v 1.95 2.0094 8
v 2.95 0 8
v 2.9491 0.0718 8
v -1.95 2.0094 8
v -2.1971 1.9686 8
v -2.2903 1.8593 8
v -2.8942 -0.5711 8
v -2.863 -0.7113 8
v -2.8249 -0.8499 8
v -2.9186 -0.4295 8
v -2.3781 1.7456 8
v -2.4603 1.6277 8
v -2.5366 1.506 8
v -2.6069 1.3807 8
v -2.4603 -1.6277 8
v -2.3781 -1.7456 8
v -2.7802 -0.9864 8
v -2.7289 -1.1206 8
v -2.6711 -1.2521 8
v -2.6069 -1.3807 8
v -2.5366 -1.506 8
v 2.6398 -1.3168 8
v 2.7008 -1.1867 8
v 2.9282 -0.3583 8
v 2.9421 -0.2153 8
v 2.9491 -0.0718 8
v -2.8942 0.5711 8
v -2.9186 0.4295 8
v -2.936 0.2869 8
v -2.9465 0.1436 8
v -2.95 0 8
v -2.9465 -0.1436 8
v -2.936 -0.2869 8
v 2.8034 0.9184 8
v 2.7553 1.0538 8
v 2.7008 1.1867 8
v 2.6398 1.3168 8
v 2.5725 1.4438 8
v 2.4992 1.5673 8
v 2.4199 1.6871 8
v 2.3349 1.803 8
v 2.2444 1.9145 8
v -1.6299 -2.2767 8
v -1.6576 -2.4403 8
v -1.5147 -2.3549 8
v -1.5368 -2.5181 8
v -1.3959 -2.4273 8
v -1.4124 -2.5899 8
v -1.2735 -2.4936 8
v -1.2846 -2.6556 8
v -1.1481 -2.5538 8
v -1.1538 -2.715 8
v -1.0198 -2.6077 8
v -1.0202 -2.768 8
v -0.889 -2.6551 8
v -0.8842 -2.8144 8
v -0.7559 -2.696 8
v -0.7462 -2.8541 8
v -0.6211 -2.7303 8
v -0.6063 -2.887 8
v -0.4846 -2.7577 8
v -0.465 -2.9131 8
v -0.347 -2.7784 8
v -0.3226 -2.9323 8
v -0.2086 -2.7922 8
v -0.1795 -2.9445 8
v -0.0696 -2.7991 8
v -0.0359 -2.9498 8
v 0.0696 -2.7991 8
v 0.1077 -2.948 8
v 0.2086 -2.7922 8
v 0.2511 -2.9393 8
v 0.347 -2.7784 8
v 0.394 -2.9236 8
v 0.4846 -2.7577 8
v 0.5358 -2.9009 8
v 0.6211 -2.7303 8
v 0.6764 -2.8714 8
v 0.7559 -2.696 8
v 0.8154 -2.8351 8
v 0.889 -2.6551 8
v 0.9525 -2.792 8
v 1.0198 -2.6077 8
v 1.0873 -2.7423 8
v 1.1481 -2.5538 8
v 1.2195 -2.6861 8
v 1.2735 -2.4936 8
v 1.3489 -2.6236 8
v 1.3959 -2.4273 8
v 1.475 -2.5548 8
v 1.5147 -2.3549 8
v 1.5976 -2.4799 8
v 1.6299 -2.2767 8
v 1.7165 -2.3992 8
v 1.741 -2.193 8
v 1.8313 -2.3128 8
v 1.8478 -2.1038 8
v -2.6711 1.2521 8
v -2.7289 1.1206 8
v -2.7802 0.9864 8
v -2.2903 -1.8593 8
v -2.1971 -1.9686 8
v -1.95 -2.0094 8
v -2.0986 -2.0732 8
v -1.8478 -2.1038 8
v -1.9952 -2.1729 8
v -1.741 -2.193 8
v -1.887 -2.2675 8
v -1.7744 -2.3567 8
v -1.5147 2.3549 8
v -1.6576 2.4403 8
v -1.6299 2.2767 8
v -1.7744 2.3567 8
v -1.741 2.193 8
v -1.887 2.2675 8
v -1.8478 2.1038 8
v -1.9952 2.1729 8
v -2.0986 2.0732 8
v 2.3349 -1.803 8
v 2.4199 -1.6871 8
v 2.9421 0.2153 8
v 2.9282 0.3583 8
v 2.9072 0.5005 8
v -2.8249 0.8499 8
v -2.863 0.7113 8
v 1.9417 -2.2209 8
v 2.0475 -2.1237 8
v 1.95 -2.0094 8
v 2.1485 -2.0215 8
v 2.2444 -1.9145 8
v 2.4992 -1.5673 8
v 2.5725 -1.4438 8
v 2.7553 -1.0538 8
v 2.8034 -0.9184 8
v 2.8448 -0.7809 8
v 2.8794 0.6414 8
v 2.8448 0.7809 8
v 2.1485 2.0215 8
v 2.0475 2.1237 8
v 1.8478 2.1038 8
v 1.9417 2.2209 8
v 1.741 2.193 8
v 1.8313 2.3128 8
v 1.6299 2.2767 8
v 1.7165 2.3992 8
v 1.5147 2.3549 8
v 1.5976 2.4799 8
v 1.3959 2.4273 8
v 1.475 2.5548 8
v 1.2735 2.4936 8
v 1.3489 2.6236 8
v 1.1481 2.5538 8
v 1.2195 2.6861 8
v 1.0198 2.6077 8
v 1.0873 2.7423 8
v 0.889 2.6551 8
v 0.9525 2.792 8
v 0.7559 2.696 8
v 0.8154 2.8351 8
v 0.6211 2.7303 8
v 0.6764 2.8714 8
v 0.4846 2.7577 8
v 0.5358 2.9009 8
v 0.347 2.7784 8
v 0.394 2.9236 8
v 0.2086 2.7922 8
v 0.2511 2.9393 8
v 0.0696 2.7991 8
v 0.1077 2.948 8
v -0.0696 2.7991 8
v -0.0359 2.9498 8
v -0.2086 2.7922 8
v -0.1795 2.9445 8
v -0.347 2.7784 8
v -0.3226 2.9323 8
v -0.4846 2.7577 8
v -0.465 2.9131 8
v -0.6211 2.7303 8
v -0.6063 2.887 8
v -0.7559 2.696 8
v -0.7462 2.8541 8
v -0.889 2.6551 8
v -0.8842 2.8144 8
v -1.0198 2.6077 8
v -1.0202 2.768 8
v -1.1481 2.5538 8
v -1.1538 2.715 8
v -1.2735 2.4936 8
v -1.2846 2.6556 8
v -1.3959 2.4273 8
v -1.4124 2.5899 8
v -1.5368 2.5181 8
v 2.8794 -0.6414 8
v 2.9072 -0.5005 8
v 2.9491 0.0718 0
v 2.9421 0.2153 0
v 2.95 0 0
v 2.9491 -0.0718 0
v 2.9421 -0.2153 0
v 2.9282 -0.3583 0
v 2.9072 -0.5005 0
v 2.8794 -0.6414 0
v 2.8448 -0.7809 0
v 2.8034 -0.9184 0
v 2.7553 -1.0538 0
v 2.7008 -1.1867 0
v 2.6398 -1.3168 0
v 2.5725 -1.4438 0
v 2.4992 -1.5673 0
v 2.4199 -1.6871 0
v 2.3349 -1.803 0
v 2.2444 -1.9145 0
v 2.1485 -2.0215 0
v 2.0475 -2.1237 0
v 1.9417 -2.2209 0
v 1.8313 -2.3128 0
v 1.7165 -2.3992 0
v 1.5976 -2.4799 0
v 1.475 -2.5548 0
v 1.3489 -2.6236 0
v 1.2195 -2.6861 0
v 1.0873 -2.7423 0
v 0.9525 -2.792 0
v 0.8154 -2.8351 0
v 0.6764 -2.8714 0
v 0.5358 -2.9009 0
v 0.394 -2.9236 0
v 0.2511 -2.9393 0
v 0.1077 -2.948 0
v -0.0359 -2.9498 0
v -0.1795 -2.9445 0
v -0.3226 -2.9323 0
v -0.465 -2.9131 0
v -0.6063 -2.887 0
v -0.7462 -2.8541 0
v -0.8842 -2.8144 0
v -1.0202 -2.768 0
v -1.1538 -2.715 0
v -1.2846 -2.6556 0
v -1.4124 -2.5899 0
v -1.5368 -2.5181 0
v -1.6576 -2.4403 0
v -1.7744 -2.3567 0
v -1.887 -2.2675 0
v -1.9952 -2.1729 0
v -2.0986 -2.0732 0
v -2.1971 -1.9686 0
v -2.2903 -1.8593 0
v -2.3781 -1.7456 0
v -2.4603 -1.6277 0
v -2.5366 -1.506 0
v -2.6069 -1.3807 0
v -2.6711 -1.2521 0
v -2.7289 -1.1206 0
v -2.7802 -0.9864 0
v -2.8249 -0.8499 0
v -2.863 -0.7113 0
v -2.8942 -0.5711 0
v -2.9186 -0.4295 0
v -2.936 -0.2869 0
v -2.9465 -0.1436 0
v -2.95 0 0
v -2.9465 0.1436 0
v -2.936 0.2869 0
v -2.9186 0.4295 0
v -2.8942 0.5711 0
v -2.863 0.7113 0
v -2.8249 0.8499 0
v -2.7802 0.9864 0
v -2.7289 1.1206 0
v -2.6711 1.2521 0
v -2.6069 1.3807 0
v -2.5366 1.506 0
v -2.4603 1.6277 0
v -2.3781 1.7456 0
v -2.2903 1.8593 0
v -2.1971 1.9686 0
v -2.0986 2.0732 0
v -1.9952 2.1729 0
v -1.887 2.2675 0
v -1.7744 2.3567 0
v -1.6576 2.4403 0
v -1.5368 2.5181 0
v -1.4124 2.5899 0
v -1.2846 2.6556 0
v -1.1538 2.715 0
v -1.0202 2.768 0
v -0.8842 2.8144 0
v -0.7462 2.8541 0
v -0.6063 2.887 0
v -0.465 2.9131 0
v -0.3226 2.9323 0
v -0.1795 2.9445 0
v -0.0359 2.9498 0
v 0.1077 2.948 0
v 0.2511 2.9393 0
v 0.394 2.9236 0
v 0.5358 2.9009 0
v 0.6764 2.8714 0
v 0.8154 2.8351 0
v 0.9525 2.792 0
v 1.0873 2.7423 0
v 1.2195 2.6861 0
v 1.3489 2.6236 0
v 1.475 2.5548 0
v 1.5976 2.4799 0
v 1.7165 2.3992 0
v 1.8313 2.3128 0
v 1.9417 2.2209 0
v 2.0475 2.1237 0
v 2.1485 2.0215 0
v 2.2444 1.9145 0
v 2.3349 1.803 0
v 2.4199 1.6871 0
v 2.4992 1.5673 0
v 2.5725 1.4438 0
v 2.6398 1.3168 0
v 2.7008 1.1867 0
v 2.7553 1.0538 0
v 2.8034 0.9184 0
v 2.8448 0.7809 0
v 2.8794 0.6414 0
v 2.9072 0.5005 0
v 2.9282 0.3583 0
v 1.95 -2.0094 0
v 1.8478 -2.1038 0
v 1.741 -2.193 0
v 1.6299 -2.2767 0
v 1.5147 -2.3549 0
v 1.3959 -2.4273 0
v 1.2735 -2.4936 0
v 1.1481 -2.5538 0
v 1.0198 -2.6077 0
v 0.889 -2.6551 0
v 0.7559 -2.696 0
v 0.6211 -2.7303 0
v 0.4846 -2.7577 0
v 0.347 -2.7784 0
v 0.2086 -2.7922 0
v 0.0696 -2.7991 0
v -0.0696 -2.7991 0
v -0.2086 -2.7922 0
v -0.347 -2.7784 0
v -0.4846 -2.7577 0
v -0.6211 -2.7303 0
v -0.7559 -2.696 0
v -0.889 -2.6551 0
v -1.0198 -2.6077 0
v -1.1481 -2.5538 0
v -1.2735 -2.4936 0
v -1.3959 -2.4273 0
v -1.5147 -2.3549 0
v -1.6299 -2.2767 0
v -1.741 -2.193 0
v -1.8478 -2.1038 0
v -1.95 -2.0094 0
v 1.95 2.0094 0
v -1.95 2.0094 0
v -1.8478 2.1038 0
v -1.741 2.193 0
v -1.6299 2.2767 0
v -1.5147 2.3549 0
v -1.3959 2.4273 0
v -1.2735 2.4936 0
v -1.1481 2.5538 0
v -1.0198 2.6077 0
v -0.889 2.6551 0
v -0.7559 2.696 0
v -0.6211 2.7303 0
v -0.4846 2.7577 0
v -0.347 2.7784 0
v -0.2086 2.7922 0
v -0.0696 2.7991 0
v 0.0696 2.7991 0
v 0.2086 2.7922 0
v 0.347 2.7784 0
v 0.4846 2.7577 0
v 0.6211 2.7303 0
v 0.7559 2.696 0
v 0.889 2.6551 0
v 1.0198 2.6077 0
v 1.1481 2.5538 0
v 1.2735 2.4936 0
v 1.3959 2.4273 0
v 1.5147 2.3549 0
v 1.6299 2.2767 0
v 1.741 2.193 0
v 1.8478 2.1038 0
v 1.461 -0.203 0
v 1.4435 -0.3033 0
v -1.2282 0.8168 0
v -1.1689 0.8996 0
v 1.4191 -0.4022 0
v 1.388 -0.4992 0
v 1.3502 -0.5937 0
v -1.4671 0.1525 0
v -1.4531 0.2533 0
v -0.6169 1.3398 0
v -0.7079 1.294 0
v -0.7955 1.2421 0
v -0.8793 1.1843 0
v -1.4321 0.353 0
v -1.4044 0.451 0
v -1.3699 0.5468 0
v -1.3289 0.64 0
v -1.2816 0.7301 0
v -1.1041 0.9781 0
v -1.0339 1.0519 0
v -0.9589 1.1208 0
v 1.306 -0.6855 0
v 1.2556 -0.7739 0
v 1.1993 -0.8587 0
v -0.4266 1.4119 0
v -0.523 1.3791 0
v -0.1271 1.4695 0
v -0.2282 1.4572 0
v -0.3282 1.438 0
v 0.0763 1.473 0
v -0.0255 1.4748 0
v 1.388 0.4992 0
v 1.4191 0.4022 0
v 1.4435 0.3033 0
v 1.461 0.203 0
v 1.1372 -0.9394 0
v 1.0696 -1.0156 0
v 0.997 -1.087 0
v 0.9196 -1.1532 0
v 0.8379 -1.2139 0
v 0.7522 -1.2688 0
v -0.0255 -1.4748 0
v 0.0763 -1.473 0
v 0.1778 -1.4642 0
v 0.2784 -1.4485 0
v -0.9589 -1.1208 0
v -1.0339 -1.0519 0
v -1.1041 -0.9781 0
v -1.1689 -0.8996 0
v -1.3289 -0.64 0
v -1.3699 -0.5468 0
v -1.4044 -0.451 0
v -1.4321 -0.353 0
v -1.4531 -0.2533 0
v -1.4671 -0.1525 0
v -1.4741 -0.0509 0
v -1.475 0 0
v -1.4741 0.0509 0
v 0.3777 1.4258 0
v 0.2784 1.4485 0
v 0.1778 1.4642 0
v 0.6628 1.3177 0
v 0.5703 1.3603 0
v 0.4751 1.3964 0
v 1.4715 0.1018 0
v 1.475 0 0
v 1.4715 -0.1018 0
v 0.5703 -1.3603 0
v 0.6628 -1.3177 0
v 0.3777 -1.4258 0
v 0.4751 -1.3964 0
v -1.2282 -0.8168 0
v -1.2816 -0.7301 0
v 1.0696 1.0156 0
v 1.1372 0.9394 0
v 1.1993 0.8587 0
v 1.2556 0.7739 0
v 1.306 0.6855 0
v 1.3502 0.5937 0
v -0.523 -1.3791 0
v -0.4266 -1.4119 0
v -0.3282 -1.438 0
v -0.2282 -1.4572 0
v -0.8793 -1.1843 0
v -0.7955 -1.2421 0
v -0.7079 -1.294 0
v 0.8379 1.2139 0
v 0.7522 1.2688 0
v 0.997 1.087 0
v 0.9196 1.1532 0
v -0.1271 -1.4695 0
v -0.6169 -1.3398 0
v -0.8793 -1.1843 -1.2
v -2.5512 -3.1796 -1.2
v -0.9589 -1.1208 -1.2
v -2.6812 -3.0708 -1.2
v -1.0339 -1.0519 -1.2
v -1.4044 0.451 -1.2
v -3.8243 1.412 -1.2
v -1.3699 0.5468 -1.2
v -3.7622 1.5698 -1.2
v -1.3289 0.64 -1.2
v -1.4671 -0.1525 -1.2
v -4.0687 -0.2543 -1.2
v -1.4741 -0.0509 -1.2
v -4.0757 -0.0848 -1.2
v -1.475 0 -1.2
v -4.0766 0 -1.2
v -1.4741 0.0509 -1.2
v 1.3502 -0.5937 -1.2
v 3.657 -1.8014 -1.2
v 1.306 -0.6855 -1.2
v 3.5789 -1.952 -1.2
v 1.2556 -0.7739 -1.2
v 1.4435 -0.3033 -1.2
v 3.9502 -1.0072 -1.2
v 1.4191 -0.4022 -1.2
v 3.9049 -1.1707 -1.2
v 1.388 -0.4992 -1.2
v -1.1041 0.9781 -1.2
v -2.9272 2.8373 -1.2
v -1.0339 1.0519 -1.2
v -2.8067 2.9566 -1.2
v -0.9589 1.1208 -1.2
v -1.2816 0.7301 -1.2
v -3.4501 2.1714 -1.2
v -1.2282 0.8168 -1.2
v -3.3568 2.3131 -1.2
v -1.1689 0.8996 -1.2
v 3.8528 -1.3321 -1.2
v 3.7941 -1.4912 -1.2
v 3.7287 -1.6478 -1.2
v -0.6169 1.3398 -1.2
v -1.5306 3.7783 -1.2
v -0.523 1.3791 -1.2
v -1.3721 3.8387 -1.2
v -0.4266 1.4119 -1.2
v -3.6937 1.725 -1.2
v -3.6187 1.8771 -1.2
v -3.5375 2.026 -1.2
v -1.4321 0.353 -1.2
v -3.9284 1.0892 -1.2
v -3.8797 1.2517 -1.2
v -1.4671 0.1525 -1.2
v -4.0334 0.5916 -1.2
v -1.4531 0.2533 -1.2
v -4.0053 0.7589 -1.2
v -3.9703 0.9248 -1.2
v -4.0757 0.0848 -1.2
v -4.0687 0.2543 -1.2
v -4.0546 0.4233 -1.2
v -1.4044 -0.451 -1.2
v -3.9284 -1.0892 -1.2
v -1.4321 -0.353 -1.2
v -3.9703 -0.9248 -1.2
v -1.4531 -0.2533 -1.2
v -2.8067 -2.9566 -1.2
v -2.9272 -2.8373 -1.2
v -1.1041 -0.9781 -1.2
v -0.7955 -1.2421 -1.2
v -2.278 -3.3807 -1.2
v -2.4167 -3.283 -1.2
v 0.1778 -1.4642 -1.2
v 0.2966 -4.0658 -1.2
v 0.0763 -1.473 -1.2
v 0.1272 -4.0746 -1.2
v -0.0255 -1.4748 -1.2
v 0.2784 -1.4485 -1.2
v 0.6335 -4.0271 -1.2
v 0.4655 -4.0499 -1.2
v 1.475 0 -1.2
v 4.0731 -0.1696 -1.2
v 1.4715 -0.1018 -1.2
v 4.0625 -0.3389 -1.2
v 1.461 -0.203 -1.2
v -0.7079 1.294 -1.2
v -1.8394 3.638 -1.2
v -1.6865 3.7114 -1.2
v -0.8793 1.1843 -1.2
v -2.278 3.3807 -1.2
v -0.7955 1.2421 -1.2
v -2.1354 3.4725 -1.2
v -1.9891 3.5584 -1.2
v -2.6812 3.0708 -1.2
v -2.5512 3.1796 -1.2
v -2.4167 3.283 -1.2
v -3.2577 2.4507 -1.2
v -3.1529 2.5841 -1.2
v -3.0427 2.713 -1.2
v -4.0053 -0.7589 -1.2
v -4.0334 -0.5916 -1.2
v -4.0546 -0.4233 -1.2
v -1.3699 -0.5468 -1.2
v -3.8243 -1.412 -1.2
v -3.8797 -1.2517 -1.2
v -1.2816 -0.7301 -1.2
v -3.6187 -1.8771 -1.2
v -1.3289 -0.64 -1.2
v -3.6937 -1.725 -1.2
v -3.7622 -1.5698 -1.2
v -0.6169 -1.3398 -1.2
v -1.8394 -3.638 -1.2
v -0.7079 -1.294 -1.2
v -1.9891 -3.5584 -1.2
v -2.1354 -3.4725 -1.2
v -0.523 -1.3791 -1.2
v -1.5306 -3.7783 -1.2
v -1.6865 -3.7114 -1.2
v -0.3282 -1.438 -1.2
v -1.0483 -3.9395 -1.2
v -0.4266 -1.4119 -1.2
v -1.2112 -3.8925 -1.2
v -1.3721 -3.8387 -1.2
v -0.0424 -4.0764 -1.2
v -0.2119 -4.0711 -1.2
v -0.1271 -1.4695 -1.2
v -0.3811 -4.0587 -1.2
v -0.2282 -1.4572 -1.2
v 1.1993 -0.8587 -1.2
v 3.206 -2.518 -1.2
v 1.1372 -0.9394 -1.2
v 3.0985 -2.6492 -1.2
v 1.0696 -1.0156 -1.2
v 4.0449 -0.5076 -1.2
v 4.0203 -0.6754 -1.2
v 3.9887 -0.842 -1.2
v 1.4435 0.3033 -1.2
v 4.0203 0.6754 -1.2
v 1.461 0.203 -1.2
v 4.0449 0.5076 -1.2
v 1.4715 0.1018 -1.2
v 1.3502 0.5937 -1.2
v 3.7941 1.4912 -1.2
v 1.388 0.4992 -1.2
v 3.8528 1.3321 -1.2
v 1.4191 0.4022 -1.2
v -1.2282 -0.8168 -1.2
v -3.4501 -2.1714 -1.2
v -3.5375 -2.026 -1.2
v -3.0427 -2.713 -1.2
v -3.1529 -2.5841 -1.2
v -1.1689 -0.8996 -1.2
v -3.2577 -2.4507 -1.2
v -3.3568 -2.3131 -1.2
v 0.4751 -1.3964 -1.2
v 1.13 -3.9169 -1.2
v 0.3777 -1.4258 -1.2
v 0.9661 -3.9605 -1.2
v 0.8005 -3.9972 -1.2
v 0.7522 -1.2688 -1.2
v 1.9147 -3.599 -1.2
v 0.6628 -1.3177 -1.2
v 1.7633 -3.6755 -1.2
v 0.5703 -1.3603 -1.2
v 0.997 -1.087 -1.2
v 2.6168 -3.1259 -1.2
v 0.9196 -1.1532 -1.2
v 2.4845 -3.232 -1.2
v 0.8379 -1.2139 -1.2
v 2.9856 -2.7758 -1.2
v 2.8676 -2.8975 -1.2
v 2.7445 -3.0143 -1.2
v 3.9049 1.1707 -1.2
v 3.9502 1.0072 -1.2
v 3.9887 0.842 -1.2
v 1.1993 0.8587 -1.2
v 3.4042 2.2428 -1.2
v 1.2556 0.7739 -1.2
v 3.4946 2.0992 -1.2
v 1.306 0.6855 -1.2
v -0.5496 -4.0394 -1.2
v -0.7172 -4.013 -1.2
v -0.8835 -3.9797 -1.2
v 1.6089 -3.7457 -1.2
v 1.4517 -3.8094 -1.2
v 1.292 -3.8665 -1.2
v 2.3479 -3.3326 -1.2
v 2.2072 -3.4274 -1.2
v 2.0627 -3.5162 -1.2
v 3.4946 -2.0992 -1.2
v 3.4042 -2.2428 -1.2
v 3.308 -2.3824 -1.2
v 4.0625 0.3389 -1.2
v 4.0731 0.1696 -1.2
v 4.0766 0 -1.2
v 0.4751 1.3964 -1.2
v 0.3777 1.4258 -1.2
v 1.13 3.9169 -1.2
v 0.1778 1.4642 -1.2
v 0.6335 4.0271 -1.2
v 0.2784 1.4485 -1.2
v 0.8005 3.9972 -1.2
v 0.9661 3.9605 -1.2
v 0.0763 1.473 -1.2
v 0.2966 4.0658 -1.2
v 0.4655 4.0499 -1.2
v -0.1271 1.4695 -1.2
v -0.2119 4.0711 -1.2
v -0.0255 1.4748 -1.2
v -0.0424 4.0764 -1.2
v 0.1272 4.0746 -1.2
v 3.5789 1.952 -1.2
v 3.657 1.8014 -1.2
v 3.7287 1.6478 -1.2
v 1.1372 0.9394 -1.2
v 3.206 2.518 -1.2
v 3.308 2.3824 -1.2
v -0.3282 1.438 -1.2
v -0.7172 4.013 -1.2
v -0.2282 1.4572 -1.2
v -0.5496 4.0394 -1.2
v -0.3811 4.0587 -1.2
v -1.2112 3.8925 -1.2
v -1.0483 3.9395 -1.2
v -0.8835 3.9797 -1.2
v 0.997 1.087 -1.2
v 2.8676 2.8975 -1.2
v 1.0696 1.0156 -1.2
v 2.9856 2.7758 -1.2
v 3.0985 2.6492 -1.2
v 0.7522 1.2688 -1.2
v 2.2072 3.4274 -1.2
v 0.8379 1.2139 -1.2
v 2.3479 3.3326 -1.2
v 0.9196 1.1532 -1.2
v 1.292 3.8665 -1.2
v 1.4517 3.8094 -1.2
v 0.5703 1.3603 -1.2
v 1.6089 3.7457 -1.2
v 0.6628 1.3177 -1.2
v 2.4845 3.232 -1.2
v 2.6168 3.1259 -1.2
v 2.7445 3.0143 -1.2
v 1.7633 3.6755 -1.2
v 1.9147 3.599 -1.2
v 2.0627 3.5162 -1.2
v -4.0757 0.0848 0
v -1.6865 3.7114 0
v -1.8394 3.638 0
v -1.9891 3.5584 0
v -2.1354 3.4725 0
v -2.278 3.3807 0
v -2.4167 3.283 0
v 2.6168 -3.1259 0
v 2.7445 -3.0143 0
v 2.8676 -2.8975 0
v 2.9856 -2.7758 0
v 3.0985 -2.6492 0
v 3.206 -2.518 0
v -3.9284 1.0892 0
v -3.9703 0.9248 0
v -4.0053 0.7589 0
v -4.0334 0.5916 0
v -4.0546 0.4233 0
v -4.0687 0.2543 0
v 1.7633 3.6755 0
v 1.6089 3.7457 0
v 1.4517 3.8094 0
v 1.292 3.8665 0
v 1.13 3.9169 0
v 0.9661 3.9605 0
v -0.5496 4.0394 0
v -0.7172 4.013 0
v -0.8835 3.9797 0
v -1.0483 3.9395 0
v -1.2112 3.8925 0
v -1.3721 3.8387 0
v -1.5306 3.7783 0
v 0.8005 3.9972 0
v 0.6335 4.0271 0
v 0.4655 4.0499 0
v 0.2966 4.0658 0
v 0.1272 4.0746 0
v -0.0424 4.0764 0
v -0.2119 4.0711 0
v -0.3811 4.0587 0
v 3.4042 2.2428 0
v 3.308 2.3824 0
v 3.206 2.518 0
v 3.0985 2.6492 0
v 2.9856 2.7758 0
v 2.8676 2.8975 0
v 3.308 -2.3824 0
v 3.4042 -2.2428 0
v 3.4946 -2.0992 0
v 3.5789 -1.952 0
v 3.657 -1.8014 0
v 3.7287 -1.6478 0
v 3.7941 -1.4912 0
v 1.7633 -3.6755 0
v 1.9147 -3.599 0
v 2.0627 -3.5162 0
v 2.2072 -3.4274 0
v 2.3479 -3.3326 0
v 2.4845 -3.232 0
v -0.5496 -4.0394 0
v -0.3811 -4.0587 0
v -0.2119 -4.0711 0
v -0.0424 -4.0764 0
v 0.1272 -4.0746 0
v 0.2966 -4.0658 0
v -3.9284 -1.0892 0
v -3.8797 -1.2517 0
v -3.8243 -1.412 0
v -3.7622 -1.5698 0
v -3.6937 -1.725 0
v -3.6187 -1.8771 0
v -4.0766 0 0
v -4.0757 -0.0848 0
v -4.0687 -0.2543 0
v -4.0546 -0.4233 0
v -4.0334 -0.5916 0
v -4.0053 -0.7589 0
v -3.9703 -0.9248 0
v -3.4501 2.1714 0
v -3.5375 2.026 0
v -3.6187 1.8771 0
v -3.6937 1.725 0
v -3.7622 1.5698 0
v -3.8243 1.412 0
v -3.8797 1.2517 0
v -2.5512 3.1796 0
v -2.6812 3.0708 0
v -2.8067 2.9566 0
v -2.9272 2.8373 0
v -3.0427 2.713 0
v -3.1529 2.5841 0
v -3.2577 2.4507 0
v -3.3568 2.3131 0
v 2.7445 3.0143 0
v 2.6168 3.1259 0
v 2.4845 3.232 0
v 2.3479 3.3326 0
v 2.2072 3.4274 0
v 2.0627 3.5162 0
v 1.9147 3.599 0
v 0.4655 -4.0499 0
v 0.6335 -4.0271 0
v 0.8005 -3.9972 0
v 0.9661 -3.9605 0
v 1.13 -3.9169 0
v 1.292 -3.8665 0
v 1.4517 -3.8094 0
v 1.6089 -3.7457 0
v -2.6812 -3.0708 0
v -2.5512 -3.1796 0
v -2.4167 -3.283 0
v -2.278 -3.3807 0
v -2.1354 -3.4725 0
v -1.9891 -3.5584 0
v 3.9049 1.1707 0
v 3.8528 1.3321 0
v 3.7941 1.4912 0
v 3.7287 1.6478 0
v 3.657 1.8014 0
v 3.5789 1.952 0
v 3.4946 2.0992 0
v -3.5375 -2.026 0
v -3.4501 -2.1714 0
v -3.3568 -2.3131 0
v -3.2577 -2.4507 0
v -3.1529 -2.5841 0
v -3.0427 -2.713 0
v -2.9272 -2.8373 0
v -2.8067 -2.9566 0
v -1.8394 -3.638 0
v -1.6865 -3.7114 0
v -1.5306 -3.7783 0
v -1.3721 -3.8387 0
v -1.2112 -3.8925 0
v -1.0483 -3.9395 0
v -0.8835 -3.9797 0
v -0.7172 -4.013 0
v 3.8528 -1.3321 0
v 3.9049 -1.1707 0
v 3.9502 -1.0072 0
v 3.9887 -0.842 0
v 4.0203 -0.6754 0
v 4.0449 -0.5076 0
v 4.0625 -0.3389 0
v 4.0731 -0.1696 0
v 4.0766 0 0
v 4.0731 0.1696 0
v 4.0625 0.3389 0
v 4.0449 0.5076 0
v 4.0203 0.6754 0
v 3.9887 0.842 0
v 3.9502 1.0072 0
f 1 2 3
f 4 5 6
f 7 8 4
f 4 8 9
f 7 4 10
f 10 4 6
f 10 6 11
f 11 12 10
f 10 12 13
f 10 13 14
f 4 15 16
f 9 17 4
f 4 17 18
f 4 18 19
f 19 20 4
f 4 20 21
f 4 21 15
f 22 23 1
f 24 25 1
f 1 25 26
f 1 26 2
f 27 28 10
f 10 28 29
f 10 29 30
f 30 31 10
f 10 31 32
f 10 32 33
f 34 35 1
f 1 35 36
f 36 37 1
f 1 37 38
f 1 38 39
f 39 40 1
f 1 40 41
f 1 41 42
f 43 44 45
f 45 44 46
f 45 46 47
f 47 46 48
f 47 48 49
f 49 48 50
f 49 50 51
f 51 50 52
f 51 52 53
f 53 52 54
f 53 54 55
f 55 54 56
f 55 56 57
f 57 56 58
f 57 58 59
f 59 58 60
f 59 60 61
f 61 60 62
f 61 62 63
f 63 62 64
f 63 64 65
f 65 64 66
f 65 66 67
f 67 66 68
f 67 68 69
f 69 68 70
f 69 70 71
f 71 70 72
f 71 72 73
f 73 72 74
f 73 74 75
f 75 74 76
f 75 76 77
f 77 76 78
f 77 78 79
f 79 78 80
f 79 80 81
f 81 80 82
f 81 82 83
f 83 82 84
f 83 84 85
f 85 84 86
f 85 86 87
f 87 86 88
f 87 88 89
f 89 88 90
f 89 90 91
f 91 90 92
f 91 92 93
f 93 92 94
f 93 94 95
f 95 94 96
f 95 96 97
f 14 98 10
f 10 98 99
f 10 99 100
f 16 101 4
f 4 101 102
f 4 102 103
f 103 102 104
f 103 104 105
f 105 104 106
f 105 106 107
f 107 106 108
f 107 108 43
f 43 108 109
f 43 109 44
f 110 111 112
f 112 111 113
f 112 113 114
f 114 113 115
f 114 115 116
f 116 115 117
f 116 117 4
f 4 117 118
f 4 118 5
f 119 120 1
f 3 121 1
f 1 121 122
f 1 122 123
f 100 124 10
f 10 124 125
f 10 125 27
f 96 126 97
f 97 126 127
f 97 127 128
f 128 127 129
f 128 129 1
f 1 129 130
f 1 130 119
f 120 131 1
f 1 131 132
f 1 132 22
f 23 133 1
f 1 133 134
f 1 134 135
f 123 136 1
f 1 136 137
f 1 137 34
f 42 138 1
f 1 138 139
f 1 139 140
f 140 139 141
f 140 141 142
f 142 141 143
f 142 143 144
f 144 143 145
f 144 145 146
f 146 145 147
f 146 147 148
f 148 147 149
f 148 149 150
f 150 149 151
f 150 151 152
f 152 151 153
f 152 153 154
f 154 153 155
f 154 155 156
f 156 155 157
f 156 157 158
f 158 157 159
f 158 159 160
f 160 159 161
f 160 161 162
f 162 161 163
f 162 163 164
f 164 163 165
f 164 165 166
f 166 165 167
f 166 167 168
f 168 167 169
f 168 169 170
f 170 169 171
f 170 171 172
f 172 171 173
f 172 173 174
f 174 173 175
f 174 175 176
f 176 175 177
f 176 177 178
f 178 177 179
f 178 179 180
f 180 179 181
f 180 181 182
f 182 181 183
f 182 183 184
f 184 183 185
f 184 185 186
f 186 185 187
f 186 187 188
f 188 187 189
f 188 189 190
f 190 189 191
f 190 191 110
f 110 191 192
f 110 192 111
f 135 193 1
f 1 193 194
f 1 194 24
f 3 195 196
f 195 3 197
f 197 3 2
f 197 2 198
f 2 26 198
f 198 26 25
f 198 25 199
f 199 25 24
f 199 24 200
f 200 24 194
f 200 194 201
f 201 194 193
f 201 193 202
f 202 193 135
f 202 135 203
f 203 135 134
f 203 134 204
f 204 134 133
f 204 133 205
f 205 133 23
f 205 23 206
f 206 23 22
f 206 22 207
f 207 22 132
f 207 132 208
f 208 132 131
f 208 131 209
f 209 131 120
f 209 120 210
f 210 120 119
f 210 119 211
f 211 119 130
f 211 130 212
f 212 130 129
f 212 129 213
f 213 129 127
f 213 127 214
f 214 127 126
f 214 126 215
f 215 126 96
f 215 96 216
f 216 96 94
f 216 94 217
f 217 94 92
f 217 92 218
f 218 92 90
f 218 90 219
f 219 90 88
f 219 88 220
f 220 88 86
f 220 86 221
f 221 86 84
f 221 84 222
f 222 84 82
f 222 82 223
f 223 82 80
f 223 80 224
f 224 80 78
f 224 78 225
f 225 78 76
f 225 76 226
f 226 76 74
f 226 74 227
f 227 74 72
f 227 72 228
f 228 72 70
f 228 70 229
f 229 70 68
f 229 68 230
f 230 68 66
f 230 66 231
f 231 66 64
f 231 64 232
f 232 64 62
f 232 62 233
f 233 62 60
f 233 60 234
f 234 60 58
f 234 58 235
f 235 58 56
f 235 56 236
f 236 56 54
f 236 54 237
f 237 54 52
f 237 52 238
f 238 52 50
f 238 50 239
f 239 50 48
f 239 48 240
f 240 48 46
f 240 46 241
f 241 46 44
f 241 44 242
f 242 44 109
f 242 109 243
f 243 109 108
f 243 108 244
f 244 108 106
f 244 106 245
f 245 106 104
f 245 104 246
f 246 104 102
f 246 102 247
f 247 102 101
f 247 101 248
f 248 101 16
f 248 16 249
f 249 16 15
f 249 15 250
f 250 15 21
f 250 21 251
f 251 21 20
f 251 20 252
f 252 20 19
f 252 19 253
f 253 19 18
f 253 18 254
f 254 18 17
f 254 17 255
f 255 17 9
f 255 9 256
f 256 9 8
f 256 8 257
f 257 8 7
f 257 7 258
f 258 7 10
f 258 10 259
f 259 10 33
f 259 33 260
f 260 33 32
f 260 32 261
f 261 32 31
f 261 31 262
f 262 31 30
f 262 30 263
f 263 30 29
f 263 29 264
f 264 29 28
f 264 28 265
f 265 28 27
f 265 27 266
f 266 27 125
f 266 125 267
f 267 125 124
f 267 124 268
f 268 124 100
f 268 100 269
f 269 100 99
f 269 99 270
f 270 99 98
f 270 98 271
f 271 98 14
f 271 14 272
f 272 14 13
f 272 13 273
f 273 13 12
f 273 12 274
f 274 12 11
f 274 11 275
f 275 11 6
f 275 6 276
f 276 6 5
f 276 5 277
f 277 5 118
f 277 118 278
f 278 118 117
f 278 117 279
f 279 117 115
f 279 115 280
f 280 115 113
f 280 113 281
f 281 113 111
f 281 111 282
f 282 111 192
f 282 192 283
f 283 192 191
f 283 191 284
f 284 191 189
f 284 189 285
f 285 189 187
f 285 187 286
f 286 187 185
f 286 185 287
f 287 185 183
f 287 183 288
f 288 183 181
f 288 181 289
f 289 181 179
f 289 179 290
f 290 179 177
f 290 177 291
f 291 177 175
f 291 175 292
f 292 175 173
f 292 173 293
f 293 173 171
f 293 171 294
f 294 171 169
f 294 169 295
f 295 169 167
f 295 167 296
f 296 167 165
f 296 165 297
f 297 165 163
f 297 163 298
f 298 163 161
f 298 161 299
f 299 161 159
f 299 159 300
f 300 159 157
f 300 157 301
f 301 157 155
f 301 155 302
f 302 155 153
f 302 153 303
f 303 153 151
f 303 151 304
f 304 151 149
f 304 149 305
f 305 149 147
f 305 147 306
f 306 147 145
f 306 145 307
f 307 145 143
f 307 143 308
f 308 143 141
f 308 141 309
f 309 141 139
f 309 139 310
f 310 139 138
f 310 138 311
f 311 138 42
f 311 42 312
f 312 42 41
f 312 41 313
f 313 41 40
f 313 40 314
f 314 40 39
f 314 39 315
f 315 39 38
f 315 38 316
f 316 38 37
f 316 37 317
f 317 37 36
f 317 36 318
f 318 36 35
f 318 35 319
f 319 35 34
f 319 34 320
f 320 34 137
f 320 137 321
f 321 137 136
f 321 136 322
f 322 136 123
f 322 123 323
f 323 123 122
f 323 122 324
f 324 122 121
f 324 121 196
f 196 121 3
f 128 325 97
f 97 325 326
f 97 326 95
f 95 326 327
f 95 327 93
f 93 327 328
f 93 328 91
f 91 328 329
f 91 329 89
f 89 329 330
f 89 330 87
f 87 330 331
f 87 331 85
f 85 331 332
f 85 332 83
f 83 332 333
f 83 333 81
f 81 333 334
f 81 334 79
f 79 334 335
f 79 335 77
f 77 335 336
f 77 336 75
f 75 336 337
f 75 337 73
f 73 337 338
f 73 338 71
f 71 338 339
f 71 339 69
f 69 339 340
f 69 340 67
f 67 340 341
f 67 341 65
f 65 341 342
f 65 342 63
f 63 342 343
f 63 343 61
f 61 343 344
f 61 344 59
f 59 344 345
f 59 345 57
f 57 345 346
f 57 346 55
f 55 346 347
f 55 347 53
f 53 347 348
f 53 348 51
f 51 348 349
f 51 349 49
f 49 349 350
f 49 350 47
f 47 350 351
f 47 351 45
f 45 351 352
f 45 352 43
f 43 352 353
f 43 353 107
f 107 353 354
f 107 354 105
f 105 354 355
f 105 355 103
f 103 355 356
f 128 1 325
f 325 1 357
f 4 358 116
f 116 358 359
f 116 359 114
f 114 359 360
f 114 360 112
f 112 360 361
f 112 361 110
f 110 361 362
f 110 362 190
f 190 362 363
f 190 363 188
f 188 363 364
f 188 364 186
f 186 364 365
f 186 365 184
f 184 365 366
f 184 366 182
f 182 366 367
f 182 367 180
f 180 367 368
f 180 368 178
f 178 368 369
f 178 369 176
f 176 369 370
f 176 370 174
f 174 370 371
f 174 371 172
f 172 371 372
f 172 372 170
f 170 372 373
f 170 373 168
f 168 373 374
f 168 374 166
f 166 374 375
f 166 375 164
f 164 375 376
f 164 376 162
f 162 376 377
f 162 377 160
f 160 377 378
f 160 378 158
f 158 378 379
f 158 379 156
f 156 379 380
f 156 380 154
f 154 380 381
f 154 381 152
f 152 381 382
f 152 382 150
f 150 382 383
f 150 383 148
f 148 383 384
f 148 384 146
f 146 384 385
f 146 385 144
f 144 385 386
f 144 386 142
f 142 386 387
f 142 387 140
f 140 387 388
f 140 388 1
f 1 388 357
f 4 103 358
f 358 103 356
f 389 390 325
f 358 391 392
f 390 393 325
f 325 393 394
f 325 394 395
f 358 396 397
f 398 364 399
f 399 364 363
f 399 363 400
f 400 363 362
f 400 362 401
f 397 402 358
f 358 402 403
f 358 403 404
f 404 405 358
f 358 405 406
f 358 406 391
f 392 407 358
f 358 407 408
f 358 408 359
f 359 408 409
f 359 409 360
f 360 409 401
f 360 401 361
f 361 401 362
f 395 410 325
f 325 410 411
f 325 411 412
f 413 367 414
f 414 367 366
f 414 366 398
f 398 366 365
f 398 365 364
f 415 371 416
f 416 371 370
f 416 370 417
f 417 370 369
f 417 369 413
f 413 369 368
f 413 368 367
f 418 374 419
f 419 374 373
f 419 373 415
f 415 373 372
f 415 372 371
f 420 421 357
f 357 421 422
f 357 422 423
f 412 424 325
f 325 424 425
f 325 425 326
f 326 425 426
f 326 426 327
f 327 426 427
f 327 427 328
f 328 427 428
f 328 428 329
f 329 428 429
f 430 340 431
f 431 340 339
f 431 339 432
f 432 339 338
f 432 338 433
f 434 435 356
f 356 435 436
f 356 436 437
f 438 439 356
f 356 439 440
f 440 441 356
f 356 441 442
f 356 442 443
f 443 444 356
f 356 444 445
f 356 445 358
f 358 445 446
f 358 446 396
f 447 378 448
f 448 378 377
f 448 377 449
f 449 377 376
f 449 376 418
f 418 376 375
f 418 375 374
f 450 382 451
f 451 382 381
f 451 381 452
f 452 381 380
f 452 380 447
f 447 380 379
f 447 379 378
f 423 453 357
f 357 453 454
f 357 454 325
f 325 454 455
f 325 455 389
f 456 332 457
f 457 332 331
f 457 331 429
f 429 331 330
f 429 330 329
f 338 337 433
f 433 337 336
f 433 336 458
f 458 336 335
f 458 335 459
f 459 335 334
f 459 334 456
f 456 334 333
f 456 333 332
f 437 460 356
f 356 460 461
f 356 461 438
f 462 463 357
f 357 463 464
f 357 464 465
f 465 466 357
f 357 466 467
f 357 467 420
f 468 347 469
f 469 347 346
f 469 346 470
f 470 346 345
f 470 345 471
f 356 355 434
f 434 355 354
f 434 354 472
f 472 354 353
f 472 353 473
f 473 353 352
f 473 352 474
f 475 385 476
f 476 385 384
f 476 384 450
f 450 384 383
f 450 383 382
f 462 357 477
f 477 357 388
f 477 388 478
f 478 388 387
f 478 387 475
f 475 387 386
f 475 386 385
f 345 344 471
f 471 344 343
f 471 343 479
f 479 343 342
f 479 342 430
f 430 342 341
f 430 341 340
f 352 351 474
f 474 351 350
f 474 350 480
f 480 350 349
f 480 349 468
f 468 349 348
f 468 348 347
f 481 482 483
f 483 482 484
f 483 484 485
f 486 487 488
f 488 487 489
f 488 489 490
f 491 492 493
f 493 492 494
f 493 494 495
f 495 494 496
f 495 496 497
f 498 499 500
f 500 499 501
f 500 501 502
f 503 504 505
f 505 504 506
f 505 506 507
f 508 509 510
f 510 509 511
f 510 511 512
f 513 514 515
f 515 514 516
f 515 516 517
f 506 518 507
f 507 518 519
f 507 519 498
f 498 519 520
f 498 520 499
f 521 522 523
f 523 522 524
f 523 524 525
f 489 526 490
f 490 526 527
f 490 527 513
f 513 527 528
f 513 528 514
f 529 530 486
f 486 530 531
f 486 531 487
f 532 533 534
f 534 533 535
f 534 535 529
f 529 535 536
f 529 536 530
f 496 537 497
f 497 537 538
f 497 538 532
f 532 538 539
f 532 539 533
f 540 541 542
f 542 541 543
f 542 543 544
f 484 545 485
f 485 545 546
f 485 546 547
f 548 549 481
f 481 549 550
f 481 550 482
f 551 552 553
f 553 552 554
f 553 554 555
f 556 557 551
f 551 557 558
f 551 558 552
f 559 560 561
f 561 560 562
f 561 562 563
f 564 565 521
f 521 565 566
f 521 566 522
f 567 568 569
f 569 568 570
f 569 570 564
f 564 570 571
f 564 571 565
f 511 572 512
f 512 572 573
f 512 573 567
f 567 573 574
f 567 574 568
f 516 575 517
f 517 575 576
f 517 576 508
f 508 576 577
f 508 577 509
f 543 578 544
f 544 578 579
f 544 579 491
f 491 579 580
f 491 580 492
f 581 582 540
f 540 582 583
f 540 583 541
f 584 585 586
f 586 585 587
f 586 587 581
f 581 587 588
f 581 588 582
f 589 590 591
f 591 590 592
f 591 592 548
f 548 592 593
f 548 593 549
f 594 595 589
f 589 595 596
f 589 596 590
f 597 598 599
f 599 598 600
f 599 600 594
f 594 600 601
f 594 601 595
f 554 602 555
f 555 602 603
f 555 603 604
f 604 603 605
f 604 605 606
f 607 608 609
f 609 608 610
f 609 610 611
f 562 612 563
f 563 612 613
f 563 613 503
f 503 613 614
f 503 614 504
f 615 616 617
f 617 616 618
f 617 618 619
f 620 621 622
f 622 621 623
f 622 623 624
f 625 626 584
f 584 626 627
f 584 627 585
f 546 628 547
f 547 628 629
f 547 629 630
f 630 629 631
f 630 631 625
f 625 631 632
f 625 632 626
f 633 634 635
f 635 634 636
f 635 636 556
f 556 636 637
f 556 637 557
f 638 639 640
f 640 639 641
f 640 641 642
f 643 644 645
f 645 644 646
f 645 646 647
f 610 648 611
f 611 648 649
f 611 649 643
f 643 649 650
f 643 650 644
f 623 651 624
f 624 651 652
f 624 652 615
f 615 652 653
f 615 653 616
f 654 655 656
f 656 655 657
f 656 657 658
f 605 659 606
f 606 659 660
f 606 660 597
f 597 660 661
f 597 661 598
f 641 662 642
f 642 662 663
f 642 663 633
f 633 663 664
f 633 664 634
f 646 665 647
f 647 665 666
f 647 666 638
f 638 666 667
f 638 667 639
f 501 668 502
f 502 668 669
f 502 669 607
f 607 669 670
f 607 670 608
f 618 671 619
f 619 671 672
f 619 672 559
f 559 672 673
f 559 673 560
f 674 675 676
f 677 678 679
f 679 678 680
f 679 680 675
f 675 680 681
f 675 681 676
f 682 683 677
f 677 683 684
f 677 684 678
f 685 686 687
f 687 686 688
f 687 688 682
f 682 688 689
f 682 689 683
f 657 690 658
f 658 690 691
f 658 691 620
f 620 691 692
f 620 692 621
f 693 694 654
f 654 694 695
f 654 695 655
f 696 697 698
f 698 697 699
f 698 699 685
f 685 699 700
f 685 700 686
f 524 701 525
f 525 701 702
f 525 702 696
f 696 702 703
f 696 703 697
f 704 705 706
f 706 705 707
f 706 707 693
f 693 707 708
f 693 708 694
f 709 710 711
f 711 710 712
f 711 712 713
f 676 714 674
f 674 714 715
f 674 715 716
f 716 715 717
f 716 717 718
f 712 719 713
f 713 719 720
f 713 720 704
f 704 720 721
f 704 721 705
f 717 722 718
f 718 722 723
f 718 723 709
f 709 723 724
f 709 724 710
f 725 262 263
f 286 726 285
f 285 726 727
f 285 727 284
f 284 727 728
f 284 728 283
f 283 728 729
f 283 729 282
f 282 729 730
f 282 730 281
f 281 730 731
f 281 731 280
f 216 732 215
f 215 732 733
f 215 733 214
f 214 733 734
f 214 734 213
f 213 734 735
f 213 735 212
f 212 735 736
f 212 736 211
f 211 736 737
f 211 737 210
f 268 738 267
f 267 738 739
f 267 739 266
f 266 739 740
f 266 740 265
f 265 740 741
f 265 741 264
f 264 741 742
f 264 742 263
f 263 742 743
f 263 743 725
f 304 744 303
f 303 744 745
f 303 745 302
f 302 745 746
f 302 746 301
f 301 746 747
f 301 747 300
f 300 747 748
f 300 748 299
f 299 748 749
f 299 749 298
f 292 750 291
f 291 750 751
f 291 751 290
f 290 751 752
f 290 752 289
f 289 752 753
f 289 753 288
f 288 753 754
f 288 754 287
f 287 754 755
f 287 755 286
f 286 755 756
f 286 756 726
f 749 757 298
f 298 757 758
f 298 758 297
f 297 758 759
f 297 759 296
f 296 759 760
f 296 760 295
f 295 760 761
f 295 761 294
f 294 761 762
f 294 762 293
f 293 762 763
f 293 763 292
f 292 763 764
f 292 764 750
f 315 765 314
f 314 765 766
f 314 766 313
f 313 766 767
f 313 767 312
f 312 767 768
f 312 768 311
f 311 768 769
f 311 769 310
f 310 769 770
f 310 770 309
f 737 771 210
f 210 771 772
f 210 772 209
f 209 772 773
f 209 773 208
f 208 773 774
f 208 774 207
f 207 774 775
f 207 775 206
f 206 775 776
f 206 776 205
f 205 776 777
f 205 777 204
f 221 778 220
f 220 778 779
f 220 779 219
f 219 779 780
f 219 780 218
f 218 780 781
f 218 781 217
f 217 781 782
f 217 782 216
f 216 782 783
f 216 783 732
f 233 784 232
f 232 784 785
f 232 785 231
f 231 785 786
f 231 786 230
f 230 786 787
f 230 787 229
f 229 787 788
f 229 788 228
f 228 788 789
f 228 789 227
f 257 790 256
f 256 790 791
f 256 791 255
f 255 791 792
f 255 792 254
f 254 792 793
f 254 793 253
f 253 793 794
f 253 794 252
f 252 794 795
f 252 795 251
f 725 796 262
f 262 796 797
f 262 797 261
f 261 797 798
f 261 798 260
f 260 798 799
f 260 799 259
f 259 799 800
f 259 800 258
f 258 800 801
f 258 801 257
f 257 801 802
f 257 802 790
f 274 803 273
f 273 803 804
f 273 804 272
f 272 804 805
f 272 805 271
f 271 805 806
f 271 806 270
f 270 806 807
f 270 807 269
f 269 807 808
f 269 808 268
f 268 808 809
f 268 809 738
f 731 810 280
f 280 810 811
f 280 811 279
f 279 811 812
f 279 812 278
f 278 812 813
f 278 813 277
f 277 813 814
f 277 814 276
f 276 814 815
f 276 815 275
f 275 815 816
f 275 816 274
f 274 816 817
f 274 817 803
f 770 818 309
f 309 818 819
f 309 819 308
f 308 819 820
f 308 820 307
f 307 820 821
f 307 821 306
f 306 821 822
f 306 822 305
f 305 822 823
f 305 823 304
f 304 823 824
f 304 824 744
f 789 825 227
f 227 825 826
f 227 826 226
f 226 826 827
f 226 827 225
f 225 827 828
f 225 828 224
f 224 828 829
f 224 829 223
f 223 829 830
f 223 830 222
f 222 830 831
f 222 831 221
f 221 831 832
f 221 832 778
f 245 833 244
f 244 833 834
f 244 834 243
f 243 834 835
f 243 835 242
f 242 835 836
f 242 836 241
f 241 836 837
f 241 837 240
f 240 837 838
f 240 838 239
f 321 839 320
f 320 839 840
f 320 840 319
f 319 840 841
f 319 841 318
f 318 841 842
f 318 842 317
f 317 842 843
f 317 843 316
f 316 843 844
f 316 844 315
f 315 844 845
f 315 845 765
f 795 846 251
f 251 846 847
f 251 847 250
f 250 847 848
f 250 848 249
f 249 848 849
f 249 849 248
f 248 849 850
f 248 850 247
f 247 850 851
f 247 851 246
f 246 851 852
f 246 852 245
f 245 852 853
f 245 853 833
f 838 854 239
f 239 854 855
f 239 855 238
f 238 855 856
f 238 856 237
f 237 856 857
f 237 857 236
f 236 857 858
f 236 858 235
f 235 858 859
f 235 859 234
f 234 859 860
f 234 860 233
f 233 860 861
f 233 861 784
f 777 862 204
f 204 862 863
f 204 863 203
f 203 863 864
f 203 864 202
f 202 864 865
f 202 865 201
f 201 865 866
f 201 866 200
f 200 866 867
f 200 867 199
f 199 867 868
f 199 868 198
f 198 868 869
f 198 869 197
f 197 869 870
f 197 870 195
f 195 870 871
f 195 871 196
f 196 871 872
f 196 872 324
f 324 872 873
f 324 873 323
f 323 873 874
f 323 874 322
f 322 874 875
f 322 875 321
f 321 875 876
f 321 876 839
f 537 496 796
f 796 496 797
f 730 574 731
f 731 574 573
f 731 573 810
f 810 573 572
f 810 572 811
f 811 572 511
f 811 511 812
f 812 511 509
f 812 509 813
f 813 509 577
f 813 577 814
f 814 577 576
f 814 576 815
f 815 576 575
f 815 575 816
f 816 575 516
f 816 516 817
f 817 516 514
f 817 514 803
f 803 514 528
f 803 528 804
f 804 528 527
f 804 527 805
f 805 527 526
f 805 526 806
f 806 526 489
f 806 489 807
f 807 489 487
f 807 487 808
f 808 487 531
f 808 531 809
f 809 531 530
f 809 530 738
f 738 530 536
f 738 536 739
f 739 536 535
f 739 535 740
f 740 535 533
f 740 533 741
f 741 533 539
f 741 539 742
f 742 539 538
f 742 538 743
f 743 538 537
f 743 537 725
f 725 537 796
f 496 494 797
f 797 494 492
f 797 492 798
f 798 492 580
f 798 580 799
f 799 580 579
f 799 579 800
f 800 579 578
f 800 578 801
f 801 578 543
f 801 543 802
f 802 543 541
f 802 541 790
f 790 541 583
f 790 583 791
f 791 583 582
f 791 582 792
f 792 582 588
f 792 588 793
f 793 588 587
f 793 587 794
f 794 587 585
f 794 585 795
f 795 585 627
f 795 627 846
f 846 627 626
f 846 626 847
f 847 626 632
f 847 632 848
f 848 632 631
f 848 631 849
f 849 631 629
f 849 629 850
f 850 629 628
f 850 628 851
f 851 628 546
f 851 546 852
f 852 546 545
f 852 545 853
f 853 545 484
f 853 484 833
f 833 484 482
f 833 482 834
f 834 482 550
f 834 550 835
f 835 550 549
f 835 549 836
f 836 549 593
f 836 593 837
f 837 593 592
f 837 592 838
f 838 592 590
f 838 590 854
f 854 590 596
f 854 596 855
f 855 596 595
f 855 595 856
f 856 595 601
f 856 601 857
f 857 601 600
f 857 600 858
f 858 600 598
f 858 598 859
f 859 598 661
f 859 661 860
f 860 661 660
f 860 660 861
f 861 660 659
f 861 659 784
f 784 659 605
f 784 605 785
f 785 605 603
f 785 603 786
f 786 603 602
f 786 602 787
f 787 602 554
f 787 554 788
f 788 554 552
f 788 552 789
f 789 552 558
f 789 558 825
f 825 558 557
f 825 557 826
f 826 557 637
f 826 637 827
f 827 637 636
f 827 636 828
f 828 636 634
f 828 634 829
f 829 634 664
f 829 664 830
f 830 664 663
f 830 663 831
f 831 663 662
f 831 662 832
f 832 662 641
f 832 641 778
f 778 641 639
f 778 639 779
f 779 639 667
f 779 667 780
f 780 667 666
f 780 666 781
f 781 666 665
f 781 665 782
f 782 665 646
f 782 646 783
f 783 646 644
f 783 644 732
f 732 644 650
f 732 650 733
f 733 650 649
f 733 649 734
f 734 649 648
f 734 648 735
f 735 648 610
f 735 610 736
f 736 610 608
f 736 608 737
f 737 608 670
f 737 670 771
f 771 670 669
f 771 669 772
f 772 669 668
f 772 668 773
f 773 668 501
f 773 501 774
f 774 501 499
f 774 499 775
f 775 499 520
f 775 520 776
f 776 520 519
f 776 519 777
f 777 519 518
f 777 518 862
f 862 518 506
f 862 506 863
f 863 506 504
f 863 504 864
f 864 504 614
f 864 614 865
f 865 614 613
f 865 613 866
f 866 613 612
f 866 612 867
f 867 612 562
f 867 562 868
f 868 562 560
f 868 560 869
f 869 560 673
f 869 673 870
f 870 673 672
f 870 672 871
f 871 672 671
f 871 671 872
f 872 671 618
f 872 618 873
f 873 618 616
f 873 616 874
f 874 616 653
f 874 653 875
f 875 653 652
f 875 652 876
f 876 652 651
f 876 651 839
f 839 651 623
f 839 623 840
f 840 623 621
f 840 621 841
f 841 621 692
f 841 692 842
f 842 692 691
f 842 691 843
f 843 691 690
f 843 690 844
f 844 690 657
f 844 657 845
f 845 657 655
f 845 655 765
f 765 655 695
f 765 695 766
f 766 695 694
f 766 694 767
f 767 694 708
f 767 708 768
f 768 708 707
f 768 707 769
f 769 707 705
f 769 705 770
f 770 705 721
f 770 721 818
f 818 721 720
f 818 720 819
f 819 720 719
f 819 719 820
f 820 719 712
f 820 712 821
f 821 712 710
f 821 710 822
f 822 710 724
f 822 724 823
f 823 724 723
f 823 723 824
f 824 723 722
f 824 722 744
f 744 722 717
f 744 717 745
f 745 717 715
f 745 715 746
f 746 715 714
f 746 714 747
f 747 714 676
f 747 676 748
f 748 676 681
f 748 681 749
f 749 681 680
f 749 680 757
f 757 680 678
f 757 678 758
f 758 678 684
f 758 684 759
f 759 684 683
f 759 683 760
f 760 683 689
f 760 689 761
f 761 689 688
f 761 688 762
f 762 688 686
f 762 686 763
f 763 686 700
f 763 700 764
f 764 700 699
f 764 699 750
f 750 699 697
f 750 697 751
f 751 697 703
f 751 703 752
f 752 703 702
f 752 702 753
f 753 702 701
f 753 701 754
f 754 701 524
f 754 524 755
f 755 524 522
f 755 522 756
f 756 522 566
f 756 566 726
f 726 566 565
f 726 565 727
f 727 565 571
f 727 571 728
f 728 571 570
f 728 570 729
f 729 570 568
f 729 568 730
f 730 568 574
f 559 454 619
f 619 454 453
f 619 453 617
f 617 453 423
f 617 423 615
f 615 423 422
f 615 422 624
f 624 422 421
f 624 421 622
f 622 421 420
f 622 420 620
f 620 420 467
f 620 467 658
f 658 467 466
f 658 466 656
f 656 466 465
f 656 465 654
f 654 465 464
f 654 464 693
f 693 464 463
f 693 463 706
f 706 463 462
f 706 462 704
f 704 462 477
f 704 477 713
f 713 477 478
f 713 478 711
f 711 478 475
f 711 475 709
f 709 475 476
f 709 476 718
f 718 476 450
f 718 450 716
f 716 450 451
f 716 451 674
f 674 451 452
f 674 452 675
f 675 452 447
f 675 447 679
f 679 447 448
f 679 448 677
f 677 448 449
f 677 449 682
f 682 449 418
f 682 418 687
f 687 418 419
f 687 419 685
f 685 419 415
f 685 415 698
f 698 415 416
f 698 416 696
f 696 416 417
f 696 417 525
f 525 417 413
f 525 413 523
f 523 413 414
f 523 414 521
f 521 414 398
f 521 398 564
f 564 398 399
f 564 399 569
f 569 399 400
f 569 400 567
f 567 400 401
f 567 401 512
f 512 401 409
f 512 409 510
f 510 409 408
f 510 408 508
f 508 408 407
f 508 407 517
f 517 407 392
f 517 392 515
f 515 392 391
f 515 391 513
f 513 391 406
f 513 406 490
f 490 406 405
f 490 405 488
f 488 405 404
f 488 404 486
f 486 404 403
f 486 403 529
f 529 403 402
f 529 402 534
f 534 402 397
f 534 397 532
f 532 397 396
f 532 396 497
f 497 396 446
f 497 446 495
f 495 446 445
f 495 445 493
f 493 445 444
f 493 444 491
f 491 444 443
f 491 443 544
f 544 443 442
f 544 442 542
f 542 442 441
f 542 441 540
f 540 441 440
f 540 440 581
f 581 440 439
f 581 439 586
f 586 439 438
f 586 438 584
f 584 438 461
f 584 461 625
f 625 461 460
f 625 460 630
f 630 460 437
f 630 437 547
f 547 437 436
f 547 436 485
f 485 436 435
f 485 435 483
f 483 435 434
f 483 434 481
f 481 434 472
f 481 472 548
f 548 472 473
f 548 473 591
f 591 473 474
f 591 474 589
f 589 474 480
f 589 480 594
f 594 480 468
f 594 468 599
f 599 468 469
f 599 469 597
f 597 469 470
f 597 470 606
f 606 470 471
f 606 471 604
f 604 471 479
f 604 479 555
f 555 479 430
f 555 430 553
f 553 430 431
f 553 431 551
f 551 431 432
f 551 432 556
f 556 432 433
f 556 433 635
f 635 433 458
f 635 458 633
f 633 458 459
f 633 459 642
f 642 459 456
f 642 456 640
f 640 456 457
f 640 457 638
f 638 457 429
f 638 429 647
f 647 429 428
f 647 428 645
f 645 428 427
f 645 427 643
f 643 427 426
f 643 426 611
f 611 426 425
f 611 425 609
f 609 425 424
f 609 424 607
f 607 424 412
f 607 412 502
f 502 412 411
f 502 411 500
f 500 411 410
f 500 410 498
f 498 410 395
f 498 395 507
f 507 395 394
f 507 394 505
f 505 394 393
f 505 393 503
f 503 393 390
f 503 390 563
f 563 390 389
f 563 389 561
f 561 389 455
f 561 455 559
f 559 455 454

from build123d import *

# Parameters (mm, degrees)
ESBO_O2_R                = 2.95
RESSALTO_EXTRUS_O1_DEPTH = 8
ESBO_O3_R                = 4.076601305
ESBO_O3_R_2              = 1.475
RESSALTO_EXTRUS_O2_DEPTH = 1.2


with BuildPart() as part:
    # Esboço2 → Ressalto-extrusão1 (new body)
    with BuildSketch(Plane.XY):
        Circle(ESBO_O2_R)
        with BuildLine():
            Line((1.95, -2.00935313), (1.95, 2.00935313))
            ThreePointArc((1.95, 2.00935313), (0, 2.8), (-1.95, 2.00935313))
            Line((-1.95, 2.00935313), (-1.95, -2.00935313))
            ThreePointArc((-1.95, -2.00935313), (0, -2.8), (1.95, -2.00935313))
        make_face(mode=Mode.SUBTRACT)
    extrude(amount=RESSALTO_EXTRUS_O1_DEPTH)

    # Esboço3 → Ressalto-extrusão2 (add)
    with BuildSketch(Plane(origin=(0, 0, 0), x_dir=(-1, 0, 0), z_dir=(0, 0, -1))):
        Circle(ESBO_O3_R)
        Circle(ESBO_O3_R_2, mode=Mode.SUBTRACT)
    extrude(amount=RESSALTO_EXTRUS_O2_DEPTH)


solid = part.part
